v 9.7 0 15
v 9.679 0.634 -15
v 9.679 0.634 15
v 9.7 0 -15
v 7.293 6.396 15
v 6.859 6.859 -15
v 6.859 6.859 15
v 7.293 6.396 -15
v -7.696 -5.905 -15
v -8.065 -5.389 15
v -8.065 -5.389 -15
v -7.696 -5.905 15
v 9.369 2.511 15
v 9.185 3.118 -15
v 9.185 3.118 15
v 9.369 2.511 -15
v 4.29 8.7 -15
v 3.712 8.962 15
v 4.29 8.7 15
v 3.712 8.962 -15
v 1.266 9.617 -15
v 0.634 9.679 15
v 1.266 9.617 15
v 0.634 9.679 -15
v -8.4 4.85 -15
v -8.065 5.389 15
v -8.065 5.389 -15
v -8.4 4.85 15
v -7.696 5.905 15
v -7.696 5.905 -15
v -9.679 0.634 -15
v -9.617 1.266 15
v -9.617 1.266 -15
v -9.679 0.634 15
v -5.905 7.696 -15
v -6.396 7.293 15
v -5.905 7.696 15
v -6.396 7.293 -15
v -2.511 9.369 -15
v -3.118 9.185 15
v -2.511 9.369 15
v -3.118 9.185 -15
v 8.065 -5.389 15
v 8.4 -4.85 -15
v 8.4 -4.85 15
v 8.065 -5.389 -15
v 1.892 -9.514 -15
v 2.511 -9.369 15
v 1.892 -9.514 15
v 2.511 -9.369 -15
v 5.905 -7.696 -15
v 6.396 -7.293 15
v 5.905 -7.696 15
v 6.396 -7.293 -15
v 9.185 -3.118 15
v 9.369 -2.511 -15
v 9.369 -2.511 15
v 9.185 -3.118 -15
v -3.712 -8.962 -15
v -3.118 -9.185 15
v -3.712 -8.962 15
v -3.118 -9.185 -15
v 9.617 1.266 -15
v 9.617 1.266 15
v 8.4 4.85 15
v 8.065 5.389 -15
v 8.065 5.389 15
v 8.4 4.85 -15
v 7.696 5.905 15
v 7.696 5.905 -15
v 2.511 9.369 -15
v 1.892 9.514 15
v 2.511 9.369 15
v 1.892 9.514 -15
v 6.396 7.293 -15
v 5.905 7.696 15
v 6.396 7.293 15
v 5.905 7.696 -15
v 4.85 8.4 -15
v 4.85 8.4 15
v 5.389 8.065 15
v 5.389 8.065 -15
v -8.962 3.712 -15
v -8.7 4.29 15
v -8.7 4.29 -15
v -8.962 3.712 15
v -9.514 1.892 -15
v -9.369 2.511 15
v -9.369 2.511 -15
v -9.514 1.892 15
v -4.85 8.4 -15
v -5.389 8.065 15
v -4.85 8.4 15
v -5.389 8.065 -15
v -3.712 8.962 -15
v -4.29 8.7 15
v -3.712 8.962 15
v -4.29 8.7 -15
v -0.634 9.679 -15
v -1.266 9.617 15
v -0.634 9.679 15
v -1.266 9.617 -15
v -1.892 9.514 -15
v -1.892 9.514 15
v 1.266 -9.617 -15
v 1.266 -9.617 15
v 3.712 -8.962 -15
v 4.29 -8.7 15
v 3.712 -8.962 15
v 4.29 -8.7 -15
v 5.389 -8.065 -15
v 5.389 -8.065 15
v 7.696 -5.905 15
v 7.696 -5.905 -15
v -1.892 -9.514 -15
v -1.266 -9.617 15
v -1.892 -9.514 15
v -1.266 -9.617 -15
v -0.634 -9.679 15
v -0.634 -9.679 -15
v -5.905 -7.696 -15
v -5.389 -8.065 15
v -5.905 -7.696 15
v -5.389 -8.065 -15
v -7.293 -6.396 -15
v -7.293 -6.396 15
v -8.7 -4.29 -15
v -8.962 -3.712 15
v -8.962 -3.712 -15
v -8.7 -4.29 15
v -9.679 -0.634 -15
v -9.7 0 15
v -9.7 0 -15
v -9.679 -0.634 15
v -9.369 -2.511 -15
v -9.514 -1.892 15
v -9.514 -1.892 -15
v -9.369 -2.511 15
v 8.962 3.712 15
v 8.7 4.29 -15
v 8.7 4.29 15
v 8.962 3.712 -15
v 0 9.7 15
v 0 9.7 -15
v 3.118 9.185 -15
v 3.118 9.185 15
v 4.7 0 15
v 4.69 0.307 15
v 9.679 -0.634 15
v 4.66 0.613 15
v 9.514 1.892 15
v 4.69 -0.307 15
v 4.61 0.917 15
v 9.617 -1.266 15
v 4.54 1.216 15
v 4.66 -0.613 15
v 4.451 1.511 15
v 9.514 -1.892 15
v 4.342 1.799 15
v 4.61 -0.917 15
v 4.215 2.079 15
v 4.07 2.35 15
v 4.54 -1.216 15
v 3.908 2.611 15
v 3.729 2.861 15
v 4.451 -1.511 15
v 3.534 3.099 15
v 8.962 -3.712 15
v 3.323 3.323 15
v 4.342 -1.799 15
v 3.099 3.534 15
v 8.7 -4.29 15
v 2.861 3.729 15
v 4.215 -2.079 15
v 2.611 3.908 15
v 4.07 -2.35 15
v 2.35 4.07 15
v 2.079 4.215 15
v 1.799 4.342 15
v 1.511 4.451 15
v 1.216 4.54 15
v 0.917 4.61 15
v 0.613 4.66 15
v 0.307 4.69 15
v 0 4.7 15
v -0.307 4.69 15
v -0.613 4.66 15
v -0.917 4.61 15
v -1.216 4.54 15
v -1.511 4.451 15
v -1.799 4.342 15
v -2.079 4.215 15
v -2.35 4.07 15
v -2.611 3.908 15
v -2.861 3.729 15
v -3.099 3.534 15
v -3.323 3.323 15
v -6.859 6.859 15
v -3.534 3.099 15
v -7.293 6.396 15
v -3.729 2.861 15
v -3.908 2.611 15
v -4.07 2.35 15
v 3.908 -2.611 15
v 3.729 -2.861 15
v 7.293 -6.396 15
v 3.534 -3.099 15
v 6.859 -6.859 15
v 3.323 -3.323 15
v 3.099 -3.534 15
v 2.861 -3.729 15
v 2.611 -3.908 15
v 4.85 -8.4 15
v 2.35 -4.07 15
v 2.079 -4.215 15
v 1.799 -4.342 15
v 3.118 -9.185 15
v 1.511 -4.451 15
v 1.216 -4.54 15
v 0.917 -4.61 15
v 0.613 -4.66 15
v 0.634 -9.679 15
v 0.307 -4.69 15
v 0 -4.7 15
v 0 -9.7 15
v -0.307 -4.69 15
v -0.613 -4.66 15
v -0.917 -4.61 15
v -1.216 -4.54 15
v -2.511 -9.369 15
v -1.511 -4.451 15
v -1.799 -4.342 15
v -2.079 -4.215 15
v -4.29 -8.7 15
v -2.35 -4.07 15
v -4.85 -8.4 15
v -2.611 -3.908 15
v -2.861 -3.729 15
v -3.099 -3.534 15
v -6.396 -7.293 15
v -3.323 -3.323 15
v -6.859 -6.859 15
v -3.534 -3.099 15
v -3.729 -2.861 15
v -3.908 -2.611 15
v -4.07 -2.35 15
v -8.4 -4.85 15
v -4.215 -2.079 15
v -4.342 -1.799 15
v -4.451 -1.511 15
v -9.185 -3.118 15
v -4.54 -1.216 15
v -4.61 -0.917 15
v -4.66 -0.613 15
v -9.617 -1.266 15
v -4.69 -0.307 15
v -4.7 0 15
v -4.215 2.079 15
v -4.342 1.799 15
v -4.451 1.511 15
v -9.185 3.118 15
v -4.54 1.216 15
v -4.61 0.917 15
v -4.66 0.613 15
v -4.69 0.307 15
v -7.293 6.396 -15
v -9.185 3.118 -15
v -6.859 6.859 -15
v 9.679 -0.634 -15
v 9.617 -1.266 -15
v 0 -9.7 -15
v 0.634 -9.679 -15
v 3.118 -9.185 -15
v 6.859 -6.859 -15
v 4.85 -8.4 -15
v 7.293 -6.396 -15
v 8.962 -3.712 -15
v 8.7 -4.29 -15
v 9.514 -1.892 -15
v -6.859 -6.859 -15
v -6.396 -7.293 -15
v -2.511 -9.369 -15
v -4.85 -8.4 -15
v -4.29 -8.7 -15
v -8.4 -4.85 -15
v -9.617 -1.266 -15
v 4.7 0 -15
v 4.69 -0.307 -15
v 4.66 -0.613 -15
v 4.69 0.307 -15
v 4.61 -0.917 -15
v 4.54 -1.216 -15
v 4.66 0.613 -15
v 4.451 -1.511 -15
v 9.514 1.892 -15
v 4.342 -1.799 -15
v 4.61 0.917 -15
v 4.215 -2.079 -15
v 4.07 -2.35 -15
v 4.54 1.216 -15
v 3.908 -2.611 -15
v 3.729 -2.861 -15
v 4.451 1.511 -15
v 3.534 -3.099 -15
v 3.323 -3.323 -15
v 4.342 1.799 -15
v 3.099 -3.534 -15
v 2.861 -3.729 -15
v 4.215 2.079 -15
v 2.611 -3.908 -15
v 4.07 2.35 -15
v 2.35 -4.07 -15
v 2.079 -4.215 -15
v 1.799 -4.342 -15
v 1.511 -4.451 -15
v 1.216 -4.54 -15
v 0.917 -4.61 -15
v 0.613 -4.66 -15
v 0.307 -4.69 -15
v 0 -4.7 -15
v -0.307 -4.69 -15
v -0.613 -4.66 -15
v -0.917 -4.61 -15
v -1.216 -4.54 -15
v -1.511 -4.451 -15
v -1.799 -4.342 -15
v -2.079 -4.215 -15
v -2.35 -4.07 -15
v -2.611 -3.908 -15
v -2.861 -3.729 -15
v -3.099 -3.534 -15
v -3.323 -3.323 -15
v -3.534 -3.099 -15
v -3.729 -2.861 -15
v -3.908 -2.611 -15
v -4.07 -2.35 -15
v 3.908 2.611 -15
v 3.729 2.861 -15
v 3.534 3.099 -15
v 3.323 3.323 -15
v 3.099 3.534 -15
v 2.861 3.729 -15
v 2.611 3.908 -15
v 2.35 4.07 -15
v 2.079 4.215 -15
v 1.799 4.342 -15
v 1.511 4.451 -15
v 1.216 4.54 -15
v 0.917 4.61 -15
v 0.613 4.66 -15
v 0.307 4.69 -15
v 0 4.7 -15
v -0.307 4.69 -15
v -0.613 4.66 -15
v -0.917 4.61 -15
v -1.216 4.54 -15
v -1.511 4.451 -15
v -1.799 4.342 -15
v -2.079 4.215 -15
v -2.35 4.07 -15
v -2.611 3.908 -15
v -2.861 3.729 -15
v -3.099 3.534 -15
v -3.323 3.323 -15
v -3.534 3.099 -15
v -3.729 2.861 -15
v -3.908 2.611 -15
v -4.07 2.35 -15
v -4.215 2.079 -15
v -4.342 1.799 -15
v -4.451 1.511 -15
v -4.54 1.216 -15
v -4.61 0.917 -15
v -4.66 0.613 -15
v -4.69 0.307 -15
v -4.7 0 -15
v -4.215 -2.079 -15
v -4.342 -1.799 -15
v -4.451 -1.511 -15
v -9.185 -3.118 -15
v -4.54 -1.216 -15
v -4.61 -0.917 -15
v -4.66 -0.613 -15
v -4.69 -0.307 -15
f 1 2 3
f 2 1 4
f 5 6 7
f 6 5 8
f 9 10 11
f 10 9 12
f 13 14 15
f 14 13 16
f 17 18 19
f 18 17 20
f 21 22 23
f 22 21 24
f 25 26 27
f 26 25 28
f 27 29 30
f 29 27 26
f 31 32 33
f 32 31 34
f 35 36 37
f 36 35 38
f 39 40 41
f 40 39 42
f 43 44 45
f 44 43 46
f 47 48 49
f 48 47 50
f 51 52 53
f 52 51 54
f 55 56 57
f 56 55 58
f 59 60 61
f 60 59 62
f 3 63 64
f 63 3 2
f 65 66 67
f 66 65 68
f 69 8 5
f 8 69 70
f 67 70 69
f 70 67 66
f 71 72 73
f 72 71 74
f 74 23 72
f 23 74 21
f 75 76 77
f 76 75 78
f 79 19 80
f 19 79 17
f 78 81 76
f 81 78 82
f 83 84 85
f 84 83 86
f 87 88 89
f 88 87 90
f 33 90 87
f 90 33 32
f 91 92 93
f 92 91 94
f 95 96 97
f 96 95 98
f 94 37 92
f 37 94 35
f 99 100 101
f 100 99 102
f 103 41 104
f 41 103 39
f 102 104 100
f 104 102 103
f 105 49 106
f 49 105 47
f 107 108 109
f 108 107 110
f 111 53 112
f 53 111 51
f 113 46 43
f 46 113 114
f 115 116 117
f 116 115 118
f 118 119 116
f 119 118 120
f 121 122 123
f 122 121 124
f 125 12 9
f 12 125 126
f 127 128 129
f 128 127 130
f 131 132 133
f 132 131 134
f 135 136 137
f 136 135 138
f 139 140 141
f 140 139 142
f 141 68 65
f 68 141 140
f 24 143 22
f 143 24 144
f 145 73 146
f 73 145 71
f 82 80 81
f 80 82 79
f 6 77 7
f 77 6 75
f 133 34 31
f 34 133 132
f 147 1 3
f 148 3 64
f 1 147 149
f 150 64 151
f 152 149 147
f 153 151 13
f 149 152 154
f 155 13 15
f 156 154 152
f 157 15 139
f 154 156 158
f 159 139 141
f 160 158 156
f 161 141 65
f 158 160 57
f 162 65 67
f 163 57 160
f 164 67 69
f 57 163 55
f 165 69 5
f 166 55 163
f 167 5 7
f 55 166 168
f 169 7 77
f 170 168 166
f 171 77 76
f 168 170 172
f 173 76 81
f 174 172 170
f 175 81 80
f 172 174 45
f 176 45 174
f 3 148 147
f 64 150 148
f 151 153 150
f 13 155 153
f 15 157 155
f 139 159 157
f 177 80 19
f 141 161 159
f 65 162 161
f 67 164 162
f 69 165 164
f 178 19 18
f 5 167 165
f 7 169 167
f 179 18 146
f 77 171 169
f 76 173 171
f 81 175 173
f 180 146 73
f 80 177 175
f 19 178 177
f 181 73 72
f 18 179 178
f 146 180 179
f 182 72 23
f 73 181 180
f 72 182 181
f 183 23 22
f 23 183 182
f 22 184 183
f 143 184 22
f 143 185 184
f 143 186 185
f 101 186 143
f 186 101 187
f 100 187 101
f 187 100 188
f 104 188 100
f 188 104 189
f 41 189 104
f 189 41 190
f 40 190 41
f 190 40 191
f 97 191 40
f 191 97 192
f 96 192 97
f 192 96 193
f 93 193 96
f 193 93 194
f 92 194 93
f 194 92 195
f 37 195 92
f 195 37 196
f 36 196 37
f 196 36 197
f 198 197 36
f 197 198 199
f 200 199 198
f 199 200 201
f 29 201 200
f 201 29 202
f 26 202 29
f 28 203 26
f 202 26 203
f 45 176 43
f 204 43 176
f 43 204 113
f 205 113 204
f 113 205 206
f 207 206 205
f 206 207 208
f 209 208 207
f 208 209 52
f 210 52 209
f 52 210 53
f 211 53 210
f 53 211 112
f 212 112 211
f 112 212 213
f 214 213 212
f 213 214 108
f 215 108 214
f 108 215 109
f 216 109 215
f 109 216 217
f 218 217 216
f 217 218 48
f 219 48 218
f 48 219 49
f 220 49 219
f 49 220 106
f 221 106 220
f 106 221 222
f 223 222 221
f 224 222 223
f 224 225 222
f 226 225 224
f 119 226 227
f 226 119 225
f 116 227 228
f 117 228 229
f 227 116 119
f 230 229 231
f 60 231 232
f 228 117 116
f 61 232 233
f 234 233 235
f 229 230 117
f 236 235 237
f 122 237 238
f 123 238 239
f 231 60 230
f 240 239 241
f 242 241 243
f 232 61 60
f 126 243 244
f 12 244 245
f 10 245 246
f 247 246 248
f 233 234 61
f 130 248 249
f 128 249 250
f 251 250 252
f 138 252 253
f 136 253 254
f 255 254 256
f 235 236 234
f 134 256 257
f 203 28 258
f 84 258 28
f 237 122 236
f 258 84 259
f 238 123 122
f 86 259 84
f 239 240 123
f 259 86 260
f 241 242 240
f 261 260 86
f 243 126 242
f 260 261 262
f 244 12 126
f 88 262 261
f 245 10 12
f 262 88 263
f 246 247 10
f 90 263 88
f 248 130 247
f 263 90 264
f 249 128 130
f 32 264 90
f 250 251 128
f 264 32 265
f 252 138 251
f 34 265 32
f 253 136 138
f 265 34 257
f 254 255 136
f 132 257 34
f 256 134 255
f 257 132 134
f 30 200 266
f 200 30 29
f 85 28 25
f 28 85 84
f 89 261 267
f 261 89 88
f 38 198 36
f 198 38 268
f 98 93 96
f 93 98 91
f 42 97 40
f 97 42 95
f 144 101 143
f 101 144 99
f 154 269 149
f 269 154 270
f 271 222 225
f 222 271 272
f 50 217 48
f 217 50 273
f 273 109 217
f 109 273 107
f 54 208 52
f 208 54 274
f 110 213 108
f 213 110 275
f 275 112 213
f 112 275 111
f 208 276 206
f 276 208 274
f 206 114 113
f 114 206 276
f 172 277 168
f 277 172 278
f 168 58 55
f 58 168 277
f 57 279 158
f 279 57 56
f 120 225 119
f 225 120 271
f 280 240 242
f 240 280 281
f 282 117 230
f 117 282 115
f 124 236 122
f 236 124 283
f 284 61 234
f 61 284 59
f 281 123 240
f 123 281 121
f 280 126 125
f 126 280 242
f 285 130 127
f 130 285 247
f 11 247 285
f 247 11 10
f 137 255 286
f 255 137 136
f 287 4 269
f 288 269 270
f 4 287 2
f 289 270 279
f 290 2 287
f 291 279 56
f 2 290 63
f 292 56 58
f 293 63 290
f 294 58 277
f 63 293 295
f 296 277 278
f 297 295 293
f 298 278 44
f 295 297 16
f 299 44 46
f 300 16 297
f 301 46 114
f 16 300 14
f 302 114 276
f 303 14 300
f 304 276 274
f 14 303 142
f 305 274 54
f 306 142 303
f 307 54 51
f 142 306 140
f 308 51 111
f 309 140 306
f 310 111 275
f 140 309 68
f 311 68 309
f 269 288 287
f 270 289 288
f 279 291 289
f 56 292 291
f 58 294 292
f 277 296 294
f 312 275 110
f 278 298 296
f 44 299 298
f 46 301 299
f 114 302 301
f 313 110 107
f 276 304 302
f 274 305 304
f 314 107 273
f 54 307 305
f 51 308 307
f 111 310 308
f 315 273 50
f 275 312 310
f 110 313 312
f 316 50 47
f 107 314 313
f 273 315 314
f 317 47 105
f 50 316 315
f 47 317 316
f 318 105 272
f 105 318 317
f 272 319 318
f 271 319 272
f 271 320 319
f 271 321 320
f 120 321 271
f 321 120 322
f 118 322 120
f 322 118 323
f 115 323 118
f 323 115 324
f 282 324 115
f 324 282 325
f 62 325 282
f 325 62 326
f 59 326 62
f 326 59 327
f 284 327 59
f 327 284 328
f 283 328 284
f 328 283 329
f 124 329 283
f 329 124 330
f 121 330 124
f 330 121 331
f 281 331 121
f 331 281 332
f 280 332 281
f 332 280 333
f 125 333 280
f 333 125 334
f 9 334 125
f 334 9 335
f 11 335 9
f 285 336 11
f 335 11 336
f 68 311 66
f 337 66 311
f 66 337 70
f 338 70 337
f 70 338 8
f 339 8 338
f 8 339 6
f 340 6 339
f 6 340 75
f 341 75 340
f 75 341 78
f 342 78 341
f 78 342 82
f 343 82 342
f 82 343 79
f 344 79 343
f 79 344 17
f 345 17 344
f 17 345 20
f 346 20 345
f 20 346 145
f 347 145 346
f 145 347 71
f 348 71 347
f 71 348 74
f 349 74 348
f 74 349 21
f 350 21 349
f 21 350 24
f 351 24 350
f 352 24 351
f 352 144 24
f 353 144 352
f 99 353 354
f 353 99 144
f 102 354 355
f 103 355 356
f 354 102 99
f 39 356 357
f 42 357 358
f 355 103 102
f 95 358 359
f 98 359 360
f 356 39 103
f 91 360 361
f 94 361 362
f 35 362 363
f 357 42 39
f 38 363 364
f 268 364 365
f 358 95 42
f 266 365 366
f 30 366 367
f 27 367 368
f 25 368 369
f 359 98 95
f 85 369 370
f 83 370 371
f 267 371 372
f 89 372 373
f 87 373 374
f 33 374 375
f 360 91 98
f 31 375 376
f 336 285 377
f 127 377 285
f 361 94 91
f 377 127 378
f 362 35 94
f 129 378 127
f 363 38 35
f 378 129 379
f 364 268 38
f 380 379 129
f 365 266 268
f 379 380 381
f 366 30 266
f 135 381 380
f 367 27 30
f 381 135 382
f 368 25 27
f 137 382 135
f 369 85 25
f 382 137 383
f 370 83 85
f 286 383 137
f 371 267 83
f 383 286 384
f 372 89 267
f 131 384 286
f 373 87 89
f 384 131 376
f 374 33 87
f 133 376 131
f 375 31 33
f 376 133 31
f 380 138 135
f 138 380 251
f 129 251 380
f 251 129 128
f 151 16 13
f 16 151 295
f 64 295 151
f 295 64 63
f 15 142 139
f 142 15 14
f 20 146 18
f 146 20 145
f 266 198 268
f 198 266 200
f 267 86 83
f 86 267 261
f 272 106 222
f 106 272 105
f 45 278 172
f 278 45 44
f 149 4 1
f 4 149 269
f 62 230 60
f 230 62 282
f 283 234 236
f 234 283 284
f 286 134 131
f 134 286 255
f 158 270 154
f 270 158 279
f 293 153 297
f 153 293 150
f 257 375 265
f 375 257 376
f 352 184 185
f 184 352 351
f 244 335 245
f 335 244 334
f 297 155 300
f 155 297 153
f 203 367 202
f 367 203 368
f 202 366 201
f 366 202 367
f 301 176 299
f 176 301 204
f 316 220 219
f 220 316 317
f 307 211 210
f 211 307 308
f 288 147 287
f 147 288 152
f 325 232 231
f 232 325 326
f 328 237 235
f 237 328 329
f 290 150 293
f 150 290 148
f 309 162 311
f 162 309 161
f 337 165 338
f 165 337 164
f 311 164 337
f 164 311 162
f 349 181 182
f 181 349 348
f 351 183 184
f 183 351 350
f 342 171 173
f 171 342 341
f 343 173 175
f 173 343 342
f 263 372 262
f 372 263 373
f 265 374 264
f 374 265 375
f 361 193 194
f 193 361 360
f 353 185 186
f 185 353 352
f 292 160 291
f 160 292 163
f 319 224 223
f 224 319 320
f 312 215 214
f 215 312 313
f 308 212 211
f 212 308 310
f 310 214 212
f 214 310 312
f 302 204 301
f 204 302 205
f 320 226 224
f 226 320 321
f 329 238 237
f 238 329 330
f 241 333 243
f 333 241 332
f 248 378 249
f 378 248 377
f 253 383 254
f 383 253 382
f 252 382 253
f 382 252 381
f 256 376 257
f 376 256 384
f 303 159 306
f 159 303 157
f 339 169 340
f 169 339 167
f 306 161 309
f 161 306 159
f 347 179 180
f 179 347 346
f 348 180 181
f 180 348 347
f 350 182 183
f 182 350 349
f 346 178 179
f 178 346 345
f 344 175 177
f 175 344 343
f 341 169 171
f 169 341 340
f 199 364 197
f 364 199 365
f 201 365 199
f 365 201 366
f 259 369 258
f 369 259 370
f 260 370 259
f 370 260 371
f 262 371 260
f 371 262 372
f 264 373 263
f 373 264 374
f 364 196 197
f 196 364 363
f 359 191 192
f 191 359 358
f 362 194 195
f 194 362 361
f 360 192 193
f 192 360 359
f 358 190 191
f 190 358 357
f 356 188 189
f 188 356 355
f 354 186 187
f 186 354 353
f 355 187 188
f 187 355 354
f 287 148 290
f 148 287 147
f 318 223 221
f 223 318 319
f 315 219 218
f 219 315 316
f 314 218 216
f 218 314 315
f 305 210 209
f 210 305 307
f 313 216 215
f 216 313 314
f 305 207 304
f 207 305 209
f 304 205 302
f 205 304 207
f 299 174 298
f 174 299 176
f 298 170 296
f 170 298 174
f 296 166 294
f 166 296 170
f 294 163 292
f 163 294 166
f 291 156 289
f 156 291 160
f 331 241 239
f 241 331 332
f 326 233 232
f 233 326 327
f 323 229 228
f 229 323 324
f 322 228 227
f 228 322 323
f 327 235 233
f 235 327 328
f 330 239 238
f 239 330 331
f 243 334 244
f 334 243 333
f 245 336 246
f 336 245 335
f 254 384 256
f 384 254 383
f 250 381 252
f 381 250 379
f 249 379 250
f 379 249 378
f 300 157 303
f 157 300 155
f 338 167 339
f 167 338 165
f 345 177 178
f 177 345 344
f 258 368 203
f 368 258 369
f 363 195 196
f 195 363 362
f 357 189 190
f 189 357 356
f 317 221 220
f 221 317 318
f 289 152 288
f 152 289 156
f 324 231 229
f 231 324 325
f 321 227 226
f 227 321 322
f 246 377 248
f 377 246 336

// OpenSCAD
// Optional spacers in case M8 bolds are long
// speedup closing winged nuts
// 4 * 2 = 8 pieces


M8=9.4;        // for easy insertion on M8 bold
  // when printed with nozzle 0.8 (and HIPS) 9.4 is necessary
   // nozzle  0.4 = 8.8= ok
Height=30;


difference()
{
cylinder(h=Height,d=M8+10,center=true,$fn=96);
 cylinder(h=Height+1,d=M8,center=true,$fn=96) ;  
    
}
